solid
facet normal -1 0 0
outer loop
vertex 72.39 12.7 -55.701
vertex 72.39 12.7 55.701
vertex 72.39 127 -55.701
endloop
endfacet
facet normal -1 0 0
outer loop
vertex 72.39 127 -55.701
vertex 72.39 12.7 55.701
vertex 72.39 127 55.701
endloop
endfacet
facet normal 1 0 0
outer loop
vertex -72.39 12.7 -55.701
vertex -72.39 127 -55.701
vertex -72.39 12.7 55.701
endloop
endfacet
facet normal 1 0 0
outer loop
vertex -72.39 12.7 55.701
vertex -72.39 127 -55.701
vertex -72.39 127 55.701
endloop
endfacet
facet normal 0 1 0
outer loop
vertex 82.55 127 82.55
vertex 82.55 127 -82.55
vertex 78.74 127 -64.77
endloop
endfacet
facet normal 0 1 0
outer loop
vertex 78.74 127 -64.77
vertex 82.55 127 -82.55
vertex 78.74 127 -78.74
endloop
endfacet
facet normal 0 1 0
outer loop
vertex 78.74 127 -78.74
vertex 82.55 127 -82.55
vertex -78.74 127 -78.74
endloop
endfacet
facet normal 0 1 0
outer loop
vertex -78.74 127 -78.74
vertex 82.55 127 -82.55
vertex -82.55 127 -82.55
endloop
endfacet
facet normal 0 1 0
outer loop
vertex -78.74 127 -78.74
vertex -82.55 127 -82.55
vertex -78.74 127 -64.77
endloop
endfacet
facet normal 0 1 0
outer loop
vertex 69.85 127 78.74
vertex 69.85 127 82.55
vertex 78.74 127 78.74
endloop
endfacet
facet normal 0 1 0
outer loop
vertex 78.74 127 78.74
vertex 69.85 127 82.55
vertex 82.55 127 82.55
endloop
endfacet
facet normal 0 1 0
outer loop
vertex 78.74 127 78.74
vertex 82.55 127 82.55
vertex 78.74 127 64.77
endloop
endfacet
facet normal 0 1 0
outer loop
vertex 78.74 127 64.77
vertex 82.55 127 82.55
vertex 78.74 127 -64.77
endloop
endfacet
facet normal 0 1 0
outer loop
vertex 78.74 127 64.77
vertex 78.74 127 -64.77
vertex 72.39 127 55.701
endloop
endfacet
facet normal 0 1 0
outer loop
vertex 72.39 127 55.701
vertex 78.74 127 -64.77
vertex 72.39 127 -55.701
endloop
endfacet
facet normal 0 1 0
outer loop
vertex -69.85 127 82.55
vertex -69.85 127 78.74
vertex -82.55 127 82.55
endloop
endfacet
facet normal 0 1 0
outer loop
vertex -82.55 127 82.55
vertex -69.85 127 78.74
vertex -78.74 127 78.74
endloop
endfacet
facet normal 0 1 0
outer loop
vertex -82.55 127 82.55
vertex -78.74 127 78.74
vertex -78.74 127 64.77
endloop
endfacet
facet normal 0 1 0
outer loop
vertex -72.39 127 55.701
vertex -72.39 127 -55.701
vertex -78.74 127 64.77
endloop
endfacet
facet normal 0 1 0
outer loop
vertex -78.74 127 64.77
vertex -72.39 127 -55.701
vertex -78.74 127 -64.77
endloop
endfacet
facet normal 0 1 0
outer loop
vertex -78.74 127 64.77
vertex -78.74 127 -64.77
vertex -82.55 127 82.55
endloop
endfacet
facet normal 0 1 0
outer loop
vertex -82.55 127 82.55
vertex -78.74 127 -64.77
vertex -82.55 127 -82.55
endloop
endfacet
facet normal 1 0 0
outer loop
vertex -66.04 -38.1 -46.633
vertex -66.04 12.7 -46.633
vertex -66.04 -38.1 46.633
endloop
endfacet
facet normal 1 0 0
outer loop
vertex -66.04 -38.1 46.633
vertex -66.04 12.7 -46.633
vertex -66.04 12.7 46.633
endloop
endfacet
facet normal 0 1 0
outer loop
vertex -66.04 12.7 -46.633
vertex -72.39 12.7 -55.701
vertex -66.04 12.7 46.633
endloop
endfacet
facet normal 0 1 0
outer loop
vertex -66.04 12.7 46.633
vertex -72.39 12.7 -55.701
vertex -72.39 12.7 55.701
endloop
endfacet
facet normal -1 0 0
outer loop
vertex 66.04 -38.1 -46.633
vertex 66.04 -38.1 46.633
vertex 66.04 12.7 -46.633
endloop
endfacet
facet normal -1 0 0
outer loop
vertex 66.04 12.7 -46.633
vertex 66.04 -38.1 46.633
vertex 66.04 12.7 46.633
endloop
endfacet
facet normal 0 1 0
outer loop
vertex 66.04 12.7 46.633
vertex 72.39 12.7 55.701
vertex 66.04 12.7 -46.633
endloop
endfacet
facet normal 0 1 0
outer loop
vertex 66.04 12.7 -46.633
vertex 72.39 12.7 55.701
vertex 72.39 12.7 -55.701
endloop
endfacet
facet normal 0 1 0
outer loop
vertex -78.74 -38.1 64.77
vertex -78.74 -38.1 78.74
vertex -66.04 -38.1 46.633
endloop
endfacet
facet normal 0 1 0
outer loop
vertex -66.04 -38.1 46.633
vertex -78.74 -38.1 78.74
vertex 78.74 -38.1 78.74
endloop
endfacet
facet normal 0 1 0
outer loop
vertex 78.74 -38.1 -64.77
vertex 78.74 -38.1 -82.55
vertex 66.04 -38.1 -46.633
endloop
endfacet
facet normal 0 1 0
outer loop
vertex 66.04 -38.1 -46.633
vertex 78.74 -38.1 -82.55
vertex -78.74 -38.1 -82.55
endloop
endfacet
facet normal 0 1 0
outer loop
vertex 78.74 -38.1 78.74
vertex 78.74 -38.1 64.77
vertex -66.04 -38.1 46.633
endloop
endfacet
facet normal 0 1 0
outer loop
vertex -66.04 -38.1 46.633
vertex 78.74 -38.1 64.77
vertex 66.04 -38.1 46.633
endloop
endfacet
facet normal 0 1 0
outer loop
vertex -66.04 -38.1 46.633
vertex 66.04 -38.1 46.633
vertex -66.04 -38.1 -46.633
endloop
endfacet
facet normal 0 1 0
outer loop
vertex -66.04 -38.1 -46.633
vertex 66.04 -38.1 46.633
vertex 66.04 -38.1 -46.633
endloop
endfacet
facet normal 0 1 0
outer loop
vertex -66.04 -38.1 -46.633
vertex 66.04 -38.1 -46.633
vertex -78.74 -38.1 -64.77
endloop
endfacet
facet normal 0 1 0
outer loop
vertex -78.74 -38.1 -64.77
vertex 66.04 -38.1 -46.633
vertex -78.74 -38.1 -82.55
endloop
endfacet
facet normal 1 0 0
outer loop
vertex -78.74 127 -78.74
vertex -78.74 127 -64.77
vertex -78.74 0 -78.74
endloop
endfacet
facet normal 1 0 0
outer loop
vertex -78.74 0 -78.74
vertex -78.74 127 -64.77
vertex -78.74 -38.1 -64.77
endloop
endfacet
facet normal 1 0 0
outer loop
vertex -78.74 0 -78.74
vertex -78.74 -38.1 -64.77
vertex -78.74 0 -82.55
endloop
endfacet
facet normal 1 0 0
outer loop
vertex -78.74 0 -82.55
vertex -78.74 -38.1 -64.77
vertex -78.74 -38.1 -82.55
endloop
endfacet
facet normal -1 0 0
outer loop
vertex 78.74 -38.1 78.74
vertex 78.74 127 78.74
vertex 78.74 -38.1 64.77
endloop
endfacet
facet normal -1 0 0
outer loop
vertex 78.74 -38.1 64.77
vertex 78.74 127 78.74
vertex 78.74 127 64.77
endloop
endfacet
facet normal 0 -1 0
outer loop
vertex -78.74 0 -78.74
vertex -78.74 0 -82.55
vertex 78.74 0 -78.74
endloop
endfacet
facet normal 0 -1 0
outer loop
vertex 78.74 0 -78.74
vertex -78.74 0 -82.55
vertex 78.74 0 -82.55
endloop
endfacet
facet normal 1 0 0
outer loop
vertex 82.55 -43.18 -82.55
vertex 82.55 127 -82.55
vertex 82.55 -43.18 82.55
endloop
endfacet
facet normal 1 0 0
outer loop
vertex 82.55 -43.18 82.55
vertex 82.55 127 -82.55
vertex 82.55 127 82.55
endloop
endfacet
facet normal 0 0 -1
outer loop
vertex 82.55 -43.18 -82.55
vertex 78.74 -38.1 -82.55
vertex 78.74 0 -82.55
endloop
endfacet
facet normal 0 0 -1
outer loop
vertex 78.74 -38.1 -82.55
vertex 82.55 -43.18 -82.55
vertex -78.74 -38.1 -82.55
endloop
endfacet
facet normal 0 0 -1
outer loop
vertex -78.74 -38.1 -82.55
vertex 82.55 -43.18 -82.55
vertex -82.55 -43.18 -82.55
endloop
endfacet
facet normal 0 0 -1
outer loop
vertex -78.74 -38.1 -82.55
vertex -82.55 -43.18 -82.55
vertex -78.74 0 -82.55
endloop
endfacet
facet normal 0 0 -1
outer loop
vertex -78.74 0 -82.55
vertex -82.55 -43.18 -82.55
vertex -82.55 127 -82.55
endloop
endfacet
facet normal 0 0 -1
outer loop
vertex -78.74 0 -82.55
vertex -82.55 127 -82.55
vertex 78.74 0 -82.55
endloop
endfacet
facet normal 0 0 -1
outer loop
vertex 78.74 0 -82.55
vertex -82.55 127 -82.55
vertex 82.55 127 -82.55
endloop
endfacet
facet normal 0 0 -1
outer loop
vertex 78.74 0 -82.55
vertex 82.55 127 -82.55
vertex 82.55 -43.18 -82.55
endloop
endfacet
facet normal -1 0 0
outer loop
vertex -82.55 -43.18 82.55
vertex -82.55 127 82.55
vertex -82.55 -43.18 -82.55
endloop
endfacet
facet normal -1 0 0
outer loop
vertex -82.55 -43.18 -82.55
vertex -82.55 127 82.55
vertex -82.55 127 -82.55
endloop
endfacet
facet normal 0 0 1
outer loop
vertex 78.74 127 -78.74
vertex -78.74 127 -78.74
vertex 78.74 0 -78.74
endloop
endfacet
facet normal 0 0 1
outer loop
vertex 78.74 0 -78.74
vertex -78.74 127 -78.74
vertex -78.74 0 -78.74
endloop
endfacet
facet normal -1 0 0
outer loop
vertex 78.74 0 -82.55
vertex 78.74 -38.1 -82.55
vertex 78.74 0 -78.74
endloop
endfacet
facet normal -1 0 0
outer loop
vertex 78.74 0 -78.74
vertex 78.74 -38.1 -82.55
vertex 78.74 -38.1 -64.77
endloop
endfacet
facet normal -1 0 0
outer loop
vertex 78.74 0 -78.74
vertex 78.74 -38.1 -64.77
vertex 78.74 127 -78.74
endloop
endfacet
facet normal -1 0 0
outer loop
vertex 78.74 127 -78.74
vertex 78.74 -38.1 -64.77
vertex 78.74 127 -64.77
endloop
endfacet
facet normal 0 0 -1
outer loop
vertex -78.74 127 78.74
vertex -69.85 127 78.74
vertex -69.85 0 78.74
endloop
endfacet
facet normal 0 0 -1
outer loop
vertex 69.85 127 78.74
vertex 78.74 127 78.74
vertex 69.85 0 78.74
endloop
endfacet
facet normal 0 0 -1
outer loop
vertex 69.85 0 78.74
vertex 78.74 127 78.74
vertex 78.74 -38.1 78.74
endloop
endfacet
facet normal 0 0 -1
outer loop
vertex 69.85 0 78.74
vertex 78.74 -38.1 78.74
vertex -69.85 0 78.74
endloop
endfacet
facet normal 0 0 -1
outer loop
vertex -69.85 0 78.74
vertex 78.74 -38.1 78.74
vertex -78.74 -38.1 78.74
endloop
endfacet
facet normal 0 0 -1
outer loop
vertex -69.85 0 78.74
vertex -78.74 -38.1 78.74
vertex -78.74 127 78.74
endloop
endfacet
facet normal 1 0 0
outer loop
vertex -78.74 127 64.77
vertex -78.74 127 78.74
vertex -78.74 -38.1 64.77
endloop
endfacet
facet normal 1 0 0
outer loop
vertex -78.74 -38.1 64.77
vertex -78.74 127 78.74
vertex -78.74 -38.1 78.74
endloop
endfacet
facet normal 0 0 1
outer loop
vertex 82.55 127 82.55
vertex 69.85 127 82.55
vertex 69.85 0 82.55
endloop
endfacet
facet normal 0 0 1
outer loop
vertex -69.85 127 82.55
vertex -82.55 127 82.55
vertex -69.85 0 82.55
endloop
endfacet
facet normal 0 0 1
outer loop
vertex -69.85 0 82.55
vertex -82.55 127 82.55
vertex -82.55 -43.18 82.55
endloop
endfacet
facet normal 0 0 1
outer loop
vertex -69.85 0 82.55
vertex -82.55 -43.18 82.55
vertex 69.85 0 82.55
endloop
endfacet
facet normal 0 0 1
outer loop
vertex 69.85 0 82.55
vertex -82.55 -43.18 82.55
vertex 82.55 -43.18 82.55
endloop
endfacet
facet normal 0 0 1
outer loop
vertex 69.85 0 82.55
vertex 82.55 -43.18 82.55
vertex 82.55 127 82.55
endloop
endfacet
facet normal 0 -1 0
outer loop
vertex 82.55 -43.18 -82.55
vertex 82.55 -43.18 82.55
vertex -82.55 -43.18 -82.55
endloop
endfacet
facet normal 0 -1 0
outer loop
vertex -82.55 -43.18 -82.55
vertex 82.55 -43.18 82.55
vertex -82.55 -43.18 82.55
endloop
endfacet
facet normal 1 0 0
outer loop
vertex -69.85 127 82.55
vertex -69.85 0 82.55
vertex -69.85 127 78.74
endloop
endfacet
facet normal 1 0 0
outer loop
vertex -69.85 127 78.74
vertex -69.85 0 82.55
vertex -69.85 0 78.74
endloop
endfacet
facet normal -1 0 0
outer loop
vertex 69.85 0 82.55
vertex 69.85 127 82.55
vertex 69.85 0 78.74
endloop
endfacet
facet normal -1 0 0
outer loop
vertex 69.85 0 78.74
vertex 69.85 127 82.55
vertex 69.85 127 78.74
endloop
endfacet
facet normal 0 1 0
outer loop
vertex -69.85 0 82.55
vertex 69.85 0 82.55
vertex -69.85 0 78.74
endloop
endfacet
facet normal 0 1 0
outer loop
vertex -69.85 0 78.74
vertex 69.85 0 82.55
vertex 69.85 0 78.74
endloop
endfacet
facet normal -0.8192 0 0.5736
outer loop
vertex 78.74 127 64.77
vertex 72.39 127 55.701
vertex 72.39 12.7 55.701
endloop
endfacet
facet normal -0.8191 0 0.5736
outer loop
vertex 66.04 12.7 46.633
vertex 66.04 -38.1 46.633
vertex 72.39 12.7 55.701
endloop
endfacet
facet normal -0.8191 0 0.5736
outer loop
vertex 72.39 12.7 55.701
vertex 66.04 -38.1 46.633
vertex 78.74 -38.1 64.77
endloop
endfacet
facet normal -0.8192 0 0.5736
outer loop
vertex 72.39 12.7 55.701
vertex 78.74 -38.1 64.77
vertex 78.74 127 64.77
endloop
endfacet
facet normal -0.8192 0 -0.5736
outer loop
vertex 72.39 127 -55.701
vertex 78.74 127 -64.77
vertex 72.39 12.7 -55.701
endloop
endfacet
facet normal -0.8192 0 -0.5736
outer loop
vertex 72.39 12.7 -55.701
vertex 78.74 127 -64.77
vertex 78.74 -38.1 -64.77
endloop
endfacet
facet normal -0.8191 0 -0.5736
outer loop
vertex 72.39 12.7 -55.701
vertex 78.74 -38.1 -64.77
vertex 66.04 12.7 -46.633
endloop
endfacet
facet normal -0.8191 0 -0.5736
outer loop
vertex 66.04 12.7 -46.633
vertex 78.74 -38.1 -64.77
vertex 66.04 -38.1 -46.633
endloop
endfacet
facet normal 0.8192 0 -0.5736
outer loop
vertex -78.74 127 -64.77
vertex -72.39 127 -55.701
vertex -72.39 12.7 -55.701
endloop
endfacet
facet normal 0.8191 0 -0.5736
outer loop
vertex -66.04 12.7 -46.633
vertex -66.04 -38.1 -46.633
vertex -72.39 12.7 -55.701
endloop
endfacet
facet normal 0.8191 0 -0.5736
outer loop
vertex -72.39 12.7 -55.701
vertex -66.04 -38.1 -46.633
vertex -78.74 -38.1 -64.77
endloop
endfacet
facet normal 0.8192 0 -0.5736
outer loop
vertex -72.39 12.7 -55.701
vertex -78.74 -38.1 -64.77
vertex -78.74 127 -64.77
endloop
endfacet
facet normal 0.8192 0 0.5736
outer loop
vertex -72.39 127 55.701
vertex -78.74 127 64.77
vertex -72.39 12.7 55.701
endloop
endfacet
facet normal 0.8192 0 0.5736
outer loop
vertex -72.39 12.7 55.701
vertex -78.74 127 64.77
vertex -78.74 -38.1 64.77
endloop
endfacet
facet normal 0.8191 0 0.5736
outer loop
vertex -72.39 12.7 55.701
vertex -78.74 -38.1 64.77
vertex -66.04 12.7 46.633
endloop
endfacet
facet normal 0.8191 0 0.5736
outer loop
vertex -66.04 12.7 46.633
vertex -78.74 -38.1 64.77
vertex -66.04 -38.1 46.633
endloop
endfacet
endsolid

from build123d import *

# Parameters (mm, degrees)
SKETCH1_W           = 165.1
SKETCH1_H           = 165.1
BOSS_EXTRUDE1_DEPTH = 127
BOSS_EXTRUDE2_DEPTH = 38.1
SKETCH5_W           = 165.1
SKETCH5_H           = 165.1
BOSS_EXTRUDE3_DEPTH = 5.08
SKETCH6_W           = 139.7
SKETCH6_H           = 127
CUT_EXTRUDE1_DEPTH  = 12.7
SKETCH1_4_W         = 6.35
SKETCH1_4_H         = 129.54
BOSS_EXTRUDE5_DEPTH = 41.656
SKETCH8_W           = 6.35
SKETCH8_H           = 129.54
BOSS_EXTRUDE6_DEPTH = 50.8
CUT_EXTRUDE2_DEPTH  = 203.205378267


with BuildPart() as part:
    # Sketch1 → Boss-Extrude1 (new body)
    with BuildSketch(Plane(origin=(0, 0, 0), x_dir=(1, 0, 0), z_dir=(0, 1, 0))):
        Rectangle(SKETCH1_W, SKETCH1_H)
        Polygon((78.74, -78.74), (-78.74, -78.74), (-78.74, -64.77), (-72.39, -64.77), (-72.39, 64.77), (-78.74, 64.77), (-78.74, 78.74), (78.74, 78.74), (78.74, 64.77), (72.39, 64.77), (72.39, -64.77), (78.74, -64.77), align=None, mode=Mode.SUBTRACT)
    extrude(amount=BOSS_EXTRUDE1_DEPTH)

    # Sketch4 → Boss-Extrude2 (add)
    with BuildSketch(Plane.XZ):
        Polygon((-82.55, 82.55), (-82.55, -82.55), (-78.74, -82.55), (-78.74, -78.74), (-78.74, -64.77), (-78.74, 64.77), (-78.74, 78.74), (78.74, 78.74), (78.74, 64.77), (78.74, -64.77), (78.74, -78.74), (78.74, -82.55), (82.55, -82.55), (82.55, 82.55), align=None)
    extrude(amount=BOSS_EXTRUDE2_DEPTH)

    # Sketch5 → Boss-Extrude3 (add)
    with BuildSketch(Plane.XZ.offset(38.1)):
        Rectangle(SKETCH5_W, SKETCH5_H)
    extrude(amount=BOSS_EXTRUDE3_DEPTH)

    # Sketch6 → Cut-Extrude1 (cut)
    with BuildSketch(Plane.XY.offset(82.55)):
        with Locations((0, 63.5)):
            Rectangle(SKETCH6_W, SKETCH6_H)
    extrude(amount=-CUT_EXTRUDE1_DEPTH, mode=Mode.SUBTRACT)

    # Sketch1<4> → Boss-Extrude5 (add)
    with BuildSketch(Plane(origin=(0, 0, 0), x_dir=(1, 0, 0), z_dir=(0, 1, 0))):
        with Locations((-75.565, 0)):
            Rectangle(SKETCH1_4_W, SKETCH1_4_H)
        with Locations((75.565, 0)):
            Rectangle(SKETCH1_4_W, SKETCH1_4_H)
    extrude(amount=-BOSS_EXTRUDE5_DEPTH)

    # Sketch8 → Boss-Extrude6 (add)
    with BuildSketch(Plane(origin=(0, -38.1, 0), x_dir=(1, 0, 0), z_dir=(0, 1, 0))):
        with Locations((-69.215, 0)):
            Rectangle(SKETCH8_W, SKETCH8_H)
        with Locations((69.215, 0)):
            Rectangle(SKETCH8_W, SKETCH8_H)
    extrude(amount=BOSS_EXTRUDE6_DEPTH)

    # Sketch9 → Cut-Extrude2 (cut, through all)
    with BuildSketch(Plane(origin=(0, -38.1, 0), x_dir=(1, 0, 0), z_dir=(0, 1, 0))):
        Polygon((-66.04, 64.77), (-78.74, 64.77), (-66.04, 46.632520314), align=None)
        Polygon((-66.04, -46.632520314), (-78.74, -64.77), (-66.04, -64.77), align=None)
        Polygon((66.04, -64.77), (78.74, -64.77), (66.04, -46.632520314), align=None)
        Polygon((78.74, 64.77), (66.04, 64.77), (66.04, 46.632520314), align=None)
    extrude(amount=CUT_EXTRUDE2_DEPTH, mode=Mode.SUBTRACT)


solid = part.part
